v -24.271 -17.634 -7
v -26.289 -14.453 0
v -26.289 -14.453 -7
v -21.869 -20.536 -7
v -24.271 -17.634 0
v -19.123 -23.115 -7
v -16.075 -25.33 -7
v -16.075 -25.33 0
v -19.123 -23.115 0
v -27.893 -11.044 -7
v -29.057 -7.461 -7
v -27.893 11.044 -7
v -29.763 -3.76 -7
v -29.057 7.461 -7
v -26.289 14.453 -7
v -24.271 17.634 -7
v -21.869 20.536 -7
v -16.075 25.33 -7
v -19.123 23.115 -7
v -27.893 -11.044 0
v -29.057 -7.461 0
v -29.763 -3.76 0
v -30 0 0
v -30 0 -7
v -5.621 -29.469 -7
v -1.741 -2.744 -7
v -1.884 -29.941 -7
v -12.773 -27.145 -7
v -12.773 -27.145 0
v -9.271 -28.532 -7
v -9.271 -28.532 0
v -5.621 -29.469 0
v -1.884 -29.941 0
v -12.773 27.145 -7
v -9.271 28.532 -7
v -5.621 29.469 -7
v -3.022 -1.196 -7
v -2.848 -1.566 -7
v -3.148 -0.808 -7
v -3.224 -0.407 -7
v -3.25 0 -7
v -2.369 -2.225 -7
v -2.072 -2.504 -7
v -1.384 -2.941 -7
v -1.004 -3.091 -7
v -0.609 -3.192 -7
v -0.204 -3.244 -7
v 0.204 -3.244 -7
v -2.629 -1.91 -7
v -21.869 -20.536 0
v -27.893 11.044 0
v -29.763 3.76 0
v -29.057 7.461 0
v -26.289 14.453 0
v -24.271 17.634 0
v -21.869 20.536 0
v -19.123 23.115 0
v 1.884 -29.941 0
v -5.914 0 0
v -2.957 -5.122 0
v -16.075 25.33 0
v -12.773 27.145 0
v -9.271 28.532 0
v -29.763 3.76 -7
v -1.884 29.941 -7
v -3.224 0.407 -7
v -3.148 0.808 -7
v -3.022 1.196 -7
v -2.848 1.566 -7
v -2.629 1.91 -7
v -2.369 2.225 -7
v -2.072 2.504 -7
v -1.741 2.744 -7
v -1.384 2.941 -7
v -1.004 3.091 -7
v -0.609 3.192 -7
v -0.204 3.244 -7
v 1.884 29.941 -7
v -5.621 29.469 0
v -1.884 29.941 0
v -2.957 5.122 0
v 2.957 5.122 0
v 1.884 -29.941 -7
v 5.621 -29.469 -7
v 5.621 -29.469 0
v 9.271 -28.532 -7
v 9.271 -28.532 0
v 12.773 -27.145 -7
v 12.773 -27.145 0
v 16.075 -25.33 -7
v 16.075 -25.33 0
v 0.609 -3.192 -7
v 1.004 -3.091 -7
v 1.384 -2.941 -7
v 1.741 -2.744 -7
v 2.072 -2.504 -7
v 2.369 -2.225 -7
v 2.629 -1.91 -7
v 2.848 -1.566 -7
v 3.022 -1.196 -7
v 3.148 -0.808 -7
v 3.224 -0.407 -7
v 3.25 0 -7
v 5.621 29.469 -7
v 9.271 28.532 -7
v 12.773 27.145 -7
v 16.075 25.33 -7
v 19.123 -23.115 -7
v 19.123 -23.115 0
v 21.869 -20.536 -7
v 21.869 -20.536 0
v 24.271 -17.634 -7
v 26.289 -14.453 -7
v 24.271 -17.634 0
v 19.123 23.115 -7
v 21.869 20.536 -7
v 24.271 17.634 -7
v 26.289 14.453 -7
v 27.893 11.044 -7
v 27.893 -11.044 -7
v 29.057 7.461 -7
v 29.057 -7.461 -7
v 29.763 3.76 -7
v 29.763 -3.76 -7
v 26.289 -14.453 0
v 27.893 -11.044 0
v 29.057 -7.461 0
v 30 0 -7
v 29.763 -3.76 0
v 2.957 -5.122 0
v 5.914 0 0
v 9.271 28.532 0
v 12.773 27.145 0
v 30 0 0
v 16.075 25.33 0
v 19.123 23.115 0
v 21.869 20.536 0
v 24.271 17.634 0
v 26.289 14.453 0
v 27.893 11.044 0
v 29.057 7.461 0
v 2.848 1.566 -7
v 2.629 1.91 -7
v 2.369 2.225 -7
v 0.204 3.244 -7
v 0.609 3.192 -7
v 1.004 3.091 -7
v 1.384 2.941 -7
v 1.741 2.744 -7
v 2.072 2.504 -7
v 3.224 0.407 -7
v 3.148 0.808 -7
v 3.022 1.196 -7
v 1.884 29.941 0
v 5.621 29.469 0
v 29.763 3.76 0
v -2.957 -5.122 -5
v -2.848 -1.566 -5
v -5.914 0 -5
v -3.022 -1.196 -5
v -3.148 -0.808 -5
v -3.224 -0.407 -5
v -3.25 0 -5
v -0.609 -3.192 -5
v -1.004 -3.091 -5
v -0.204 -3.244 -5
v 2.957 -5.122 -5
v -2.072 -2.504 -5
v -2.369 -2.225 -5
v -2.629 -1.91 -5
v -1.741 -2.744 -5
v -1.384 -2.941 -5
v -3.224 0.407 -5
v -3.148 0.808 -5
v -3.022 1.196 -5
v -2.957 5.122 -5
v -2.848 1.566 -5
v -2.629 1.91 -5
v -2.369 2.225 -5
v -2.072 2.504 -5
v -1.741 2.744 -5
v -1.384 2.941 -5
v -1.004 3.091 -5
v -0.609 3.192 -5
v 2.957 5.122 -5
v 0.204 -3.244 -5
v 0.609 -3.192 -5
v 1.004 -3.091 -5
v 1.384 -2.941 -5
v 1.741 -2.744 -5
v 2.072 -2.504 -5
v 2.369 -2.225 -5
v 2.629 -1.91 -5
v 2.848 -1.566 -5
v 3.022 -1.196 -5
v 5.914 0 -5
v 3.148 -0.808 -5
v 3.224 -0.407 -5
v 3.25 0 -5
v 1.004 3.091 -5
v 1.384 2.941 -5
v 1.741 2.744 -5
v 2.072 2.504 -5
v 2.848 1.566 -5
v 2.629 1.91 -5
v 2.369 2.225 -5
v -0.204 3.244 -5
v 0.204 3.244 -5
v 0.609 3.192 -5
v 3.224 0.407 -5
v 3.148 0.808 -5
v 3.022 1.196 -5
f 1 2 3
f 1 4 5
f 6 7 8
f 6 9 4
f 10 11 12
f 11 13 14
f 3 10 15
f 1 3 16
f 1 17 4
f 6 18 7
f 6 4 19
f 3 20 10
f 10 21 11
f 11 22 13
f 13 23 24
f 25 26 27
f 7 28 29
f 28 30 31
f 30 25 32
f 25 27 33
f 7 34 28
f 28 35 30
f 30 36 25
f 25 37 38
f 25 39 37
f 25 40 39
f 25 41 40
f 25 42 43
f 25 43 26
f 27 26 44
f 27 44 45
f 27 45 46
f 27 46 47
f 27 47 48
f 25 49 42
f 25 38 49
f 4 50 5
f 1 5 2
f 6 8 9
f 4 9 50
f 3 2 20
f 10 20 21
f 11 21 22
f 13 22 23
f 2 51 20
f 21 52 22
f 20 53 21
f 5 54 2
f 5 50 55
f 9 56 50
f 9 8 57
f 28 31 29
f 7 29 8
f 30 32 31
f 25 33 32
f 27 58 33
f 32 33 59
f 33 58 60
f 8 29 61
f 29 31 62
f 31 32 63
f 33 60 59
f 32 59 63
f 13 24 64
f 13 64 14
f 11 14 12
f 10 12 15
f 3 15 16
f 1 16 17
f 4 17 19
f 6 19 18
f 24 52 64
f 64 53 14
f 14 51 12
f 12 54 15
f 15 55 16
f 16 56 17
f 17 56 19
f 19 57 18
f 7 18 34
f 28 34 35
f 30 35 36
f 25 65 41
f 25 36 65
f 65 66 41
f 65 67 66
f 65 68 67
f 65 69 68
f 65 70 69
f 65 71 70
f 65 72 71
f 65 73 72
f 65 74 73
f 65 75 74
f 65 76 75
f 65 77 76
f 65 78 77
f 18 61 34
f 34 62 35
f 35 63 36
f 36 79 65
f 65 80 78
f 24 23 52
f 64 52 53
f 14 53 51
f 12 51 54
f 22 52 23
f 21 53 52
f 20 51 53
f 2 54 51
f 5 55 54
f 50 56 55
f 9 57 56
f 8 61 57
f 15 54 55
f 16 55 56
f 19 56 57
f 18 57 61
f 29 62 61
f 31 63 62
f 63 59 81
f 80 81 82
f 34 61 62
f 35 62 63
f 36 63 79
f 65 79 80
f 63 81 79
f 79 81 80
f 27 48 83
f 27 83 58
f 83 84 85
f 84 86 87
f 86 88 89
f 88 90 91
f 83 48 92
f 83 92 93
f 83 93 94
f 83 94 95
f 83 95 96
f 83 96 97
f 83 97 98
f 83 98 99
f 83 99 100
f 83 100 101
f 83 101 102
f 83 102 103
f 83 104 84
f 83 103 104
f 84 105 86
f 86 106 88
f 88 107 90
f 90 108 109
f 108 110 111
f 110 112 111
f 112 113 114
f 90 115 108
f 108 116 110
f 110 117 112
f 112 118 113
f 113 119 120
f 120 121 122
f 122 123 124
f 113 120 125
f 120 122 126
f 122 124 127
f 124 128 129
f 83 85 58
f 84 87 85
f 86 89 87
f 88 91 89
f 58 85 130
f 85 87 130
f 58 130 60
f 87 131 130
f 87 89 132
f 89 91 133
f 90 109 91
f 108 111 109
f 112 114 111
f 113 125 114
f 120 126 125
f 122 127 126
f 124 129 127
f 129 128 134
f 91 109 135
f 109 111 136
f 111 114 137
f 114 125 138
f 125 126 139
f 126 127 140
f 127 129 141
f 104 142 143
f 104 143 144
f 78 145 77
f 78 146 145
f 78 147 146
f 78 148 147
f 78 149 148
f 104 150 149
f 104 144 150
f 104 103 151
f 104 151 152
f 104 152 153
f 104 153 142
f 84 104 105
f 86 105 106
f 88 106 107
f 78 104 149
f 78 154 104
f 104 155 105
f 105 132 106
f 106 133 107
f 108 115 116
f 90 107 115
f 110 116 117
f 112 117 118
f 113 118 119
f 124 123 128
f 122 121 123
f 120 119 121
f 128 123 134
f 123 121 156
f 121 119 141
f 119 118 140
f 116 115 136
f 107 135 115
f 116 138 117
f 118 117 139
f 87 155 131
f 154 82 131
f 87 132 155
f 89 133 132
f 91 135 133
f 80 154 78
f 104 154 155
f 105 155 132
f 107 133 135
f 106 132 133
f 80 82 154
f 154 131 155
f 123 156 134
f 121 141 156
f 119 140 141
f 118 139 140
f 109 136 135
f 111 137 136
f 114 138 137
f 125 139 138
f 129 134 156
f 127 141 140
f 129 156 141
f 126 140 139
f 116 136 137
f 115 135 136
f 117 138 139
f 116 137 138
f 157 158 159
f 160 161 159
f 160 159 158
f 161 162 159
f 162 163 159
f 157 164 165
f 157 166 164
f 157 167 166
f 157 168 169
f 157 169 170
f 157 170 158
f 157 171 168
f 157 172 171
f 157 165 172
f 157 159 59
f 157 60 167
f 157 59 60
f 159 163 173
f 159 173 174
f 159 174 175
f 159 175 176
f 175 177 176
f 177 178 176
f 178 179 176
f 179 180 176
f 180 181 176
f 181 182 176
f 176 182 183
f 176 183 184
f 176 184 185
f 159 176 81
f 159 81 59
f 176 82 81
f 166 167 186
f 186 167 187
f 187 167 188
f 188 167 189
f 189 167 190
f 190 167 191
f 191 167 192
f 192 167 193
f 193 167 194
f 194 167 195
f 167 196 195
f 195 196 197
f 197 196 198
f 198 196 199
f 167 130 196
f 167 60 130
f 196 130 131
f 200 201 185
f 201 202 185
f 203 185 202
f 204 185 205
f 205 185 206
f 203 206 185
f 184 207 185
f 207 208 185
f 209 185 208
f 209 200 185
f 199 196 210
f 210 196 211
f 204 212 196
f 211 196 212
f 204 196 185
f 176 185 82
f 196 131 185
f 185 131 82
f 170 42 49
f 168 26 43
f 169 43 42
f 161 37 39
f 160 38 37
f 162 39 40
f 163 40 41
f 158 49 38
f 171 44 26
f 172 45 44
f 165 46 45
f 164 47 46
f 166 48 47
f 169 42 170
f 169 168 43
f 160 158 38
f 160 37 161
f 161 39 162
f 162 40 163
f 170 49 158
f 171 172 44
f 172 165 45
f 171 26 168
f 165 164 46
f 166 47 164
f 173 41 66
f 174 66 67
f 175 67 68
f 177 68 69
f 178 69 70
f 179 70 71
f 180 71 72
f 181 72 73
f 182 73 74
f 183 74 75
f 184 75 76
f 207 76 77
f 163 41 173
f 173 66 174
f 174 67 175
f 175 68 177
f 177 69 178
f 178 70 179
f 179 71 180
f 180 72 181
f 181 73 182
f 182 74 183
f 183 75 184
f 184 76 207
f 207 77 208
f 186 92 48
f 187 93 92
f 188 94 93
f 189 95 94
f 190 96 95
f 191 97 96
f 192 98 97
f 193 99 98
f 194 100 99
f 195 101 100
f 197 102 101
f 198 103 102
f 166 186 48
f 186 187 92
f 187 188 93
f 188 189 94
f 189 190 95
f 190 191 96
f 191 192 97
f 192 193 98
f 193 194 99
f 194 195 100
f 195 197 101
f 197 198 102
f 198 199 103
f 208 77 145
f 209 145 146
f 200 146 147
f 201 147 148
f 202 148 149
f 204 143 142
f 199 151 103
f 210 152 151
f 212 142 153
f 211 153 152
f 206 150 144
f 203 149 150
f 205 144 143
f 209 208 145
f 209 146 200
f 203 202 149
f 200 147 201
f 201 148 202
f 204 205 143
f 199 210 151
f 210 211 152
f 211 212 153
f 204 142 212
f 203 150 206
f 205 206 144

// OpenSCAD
$fn = 50;

difference() {
	union() {
		translate(v = [0, 0, -7.0]) {
			cylinder(h = 7.0, r = 30.0);
		}
		#translate(v = [0, 0, -8.5]) {
			cylinder(h = 8.5, r = 2.875);
		}
	}
	union() {
		translate(v = [0, 0, 0]) {
			rotate(a = [0, 0, 0]) {
				difference() {
					union() {
						translate(v = [0, 0, -5]) {
							linear_extrude(height = 5) {
								polygon(points = [[5.914249999999999, 0.0], [2.957125, 5.1218907443321156], [-2.9571249999999982, 5.1218907443321156], [-5.914249999999999, 7.242867331857232e-16], [-2.9571250000000022, -5.121890744332115], [2.9571249999999956, -5.121890744332118]]);
							}
						}
					}
					union();
				}
			}
		}
		#translate(v = [0, 0, -100.0]) {
			cylinder(h = 200, r = 3.25);
		}
	}
}
